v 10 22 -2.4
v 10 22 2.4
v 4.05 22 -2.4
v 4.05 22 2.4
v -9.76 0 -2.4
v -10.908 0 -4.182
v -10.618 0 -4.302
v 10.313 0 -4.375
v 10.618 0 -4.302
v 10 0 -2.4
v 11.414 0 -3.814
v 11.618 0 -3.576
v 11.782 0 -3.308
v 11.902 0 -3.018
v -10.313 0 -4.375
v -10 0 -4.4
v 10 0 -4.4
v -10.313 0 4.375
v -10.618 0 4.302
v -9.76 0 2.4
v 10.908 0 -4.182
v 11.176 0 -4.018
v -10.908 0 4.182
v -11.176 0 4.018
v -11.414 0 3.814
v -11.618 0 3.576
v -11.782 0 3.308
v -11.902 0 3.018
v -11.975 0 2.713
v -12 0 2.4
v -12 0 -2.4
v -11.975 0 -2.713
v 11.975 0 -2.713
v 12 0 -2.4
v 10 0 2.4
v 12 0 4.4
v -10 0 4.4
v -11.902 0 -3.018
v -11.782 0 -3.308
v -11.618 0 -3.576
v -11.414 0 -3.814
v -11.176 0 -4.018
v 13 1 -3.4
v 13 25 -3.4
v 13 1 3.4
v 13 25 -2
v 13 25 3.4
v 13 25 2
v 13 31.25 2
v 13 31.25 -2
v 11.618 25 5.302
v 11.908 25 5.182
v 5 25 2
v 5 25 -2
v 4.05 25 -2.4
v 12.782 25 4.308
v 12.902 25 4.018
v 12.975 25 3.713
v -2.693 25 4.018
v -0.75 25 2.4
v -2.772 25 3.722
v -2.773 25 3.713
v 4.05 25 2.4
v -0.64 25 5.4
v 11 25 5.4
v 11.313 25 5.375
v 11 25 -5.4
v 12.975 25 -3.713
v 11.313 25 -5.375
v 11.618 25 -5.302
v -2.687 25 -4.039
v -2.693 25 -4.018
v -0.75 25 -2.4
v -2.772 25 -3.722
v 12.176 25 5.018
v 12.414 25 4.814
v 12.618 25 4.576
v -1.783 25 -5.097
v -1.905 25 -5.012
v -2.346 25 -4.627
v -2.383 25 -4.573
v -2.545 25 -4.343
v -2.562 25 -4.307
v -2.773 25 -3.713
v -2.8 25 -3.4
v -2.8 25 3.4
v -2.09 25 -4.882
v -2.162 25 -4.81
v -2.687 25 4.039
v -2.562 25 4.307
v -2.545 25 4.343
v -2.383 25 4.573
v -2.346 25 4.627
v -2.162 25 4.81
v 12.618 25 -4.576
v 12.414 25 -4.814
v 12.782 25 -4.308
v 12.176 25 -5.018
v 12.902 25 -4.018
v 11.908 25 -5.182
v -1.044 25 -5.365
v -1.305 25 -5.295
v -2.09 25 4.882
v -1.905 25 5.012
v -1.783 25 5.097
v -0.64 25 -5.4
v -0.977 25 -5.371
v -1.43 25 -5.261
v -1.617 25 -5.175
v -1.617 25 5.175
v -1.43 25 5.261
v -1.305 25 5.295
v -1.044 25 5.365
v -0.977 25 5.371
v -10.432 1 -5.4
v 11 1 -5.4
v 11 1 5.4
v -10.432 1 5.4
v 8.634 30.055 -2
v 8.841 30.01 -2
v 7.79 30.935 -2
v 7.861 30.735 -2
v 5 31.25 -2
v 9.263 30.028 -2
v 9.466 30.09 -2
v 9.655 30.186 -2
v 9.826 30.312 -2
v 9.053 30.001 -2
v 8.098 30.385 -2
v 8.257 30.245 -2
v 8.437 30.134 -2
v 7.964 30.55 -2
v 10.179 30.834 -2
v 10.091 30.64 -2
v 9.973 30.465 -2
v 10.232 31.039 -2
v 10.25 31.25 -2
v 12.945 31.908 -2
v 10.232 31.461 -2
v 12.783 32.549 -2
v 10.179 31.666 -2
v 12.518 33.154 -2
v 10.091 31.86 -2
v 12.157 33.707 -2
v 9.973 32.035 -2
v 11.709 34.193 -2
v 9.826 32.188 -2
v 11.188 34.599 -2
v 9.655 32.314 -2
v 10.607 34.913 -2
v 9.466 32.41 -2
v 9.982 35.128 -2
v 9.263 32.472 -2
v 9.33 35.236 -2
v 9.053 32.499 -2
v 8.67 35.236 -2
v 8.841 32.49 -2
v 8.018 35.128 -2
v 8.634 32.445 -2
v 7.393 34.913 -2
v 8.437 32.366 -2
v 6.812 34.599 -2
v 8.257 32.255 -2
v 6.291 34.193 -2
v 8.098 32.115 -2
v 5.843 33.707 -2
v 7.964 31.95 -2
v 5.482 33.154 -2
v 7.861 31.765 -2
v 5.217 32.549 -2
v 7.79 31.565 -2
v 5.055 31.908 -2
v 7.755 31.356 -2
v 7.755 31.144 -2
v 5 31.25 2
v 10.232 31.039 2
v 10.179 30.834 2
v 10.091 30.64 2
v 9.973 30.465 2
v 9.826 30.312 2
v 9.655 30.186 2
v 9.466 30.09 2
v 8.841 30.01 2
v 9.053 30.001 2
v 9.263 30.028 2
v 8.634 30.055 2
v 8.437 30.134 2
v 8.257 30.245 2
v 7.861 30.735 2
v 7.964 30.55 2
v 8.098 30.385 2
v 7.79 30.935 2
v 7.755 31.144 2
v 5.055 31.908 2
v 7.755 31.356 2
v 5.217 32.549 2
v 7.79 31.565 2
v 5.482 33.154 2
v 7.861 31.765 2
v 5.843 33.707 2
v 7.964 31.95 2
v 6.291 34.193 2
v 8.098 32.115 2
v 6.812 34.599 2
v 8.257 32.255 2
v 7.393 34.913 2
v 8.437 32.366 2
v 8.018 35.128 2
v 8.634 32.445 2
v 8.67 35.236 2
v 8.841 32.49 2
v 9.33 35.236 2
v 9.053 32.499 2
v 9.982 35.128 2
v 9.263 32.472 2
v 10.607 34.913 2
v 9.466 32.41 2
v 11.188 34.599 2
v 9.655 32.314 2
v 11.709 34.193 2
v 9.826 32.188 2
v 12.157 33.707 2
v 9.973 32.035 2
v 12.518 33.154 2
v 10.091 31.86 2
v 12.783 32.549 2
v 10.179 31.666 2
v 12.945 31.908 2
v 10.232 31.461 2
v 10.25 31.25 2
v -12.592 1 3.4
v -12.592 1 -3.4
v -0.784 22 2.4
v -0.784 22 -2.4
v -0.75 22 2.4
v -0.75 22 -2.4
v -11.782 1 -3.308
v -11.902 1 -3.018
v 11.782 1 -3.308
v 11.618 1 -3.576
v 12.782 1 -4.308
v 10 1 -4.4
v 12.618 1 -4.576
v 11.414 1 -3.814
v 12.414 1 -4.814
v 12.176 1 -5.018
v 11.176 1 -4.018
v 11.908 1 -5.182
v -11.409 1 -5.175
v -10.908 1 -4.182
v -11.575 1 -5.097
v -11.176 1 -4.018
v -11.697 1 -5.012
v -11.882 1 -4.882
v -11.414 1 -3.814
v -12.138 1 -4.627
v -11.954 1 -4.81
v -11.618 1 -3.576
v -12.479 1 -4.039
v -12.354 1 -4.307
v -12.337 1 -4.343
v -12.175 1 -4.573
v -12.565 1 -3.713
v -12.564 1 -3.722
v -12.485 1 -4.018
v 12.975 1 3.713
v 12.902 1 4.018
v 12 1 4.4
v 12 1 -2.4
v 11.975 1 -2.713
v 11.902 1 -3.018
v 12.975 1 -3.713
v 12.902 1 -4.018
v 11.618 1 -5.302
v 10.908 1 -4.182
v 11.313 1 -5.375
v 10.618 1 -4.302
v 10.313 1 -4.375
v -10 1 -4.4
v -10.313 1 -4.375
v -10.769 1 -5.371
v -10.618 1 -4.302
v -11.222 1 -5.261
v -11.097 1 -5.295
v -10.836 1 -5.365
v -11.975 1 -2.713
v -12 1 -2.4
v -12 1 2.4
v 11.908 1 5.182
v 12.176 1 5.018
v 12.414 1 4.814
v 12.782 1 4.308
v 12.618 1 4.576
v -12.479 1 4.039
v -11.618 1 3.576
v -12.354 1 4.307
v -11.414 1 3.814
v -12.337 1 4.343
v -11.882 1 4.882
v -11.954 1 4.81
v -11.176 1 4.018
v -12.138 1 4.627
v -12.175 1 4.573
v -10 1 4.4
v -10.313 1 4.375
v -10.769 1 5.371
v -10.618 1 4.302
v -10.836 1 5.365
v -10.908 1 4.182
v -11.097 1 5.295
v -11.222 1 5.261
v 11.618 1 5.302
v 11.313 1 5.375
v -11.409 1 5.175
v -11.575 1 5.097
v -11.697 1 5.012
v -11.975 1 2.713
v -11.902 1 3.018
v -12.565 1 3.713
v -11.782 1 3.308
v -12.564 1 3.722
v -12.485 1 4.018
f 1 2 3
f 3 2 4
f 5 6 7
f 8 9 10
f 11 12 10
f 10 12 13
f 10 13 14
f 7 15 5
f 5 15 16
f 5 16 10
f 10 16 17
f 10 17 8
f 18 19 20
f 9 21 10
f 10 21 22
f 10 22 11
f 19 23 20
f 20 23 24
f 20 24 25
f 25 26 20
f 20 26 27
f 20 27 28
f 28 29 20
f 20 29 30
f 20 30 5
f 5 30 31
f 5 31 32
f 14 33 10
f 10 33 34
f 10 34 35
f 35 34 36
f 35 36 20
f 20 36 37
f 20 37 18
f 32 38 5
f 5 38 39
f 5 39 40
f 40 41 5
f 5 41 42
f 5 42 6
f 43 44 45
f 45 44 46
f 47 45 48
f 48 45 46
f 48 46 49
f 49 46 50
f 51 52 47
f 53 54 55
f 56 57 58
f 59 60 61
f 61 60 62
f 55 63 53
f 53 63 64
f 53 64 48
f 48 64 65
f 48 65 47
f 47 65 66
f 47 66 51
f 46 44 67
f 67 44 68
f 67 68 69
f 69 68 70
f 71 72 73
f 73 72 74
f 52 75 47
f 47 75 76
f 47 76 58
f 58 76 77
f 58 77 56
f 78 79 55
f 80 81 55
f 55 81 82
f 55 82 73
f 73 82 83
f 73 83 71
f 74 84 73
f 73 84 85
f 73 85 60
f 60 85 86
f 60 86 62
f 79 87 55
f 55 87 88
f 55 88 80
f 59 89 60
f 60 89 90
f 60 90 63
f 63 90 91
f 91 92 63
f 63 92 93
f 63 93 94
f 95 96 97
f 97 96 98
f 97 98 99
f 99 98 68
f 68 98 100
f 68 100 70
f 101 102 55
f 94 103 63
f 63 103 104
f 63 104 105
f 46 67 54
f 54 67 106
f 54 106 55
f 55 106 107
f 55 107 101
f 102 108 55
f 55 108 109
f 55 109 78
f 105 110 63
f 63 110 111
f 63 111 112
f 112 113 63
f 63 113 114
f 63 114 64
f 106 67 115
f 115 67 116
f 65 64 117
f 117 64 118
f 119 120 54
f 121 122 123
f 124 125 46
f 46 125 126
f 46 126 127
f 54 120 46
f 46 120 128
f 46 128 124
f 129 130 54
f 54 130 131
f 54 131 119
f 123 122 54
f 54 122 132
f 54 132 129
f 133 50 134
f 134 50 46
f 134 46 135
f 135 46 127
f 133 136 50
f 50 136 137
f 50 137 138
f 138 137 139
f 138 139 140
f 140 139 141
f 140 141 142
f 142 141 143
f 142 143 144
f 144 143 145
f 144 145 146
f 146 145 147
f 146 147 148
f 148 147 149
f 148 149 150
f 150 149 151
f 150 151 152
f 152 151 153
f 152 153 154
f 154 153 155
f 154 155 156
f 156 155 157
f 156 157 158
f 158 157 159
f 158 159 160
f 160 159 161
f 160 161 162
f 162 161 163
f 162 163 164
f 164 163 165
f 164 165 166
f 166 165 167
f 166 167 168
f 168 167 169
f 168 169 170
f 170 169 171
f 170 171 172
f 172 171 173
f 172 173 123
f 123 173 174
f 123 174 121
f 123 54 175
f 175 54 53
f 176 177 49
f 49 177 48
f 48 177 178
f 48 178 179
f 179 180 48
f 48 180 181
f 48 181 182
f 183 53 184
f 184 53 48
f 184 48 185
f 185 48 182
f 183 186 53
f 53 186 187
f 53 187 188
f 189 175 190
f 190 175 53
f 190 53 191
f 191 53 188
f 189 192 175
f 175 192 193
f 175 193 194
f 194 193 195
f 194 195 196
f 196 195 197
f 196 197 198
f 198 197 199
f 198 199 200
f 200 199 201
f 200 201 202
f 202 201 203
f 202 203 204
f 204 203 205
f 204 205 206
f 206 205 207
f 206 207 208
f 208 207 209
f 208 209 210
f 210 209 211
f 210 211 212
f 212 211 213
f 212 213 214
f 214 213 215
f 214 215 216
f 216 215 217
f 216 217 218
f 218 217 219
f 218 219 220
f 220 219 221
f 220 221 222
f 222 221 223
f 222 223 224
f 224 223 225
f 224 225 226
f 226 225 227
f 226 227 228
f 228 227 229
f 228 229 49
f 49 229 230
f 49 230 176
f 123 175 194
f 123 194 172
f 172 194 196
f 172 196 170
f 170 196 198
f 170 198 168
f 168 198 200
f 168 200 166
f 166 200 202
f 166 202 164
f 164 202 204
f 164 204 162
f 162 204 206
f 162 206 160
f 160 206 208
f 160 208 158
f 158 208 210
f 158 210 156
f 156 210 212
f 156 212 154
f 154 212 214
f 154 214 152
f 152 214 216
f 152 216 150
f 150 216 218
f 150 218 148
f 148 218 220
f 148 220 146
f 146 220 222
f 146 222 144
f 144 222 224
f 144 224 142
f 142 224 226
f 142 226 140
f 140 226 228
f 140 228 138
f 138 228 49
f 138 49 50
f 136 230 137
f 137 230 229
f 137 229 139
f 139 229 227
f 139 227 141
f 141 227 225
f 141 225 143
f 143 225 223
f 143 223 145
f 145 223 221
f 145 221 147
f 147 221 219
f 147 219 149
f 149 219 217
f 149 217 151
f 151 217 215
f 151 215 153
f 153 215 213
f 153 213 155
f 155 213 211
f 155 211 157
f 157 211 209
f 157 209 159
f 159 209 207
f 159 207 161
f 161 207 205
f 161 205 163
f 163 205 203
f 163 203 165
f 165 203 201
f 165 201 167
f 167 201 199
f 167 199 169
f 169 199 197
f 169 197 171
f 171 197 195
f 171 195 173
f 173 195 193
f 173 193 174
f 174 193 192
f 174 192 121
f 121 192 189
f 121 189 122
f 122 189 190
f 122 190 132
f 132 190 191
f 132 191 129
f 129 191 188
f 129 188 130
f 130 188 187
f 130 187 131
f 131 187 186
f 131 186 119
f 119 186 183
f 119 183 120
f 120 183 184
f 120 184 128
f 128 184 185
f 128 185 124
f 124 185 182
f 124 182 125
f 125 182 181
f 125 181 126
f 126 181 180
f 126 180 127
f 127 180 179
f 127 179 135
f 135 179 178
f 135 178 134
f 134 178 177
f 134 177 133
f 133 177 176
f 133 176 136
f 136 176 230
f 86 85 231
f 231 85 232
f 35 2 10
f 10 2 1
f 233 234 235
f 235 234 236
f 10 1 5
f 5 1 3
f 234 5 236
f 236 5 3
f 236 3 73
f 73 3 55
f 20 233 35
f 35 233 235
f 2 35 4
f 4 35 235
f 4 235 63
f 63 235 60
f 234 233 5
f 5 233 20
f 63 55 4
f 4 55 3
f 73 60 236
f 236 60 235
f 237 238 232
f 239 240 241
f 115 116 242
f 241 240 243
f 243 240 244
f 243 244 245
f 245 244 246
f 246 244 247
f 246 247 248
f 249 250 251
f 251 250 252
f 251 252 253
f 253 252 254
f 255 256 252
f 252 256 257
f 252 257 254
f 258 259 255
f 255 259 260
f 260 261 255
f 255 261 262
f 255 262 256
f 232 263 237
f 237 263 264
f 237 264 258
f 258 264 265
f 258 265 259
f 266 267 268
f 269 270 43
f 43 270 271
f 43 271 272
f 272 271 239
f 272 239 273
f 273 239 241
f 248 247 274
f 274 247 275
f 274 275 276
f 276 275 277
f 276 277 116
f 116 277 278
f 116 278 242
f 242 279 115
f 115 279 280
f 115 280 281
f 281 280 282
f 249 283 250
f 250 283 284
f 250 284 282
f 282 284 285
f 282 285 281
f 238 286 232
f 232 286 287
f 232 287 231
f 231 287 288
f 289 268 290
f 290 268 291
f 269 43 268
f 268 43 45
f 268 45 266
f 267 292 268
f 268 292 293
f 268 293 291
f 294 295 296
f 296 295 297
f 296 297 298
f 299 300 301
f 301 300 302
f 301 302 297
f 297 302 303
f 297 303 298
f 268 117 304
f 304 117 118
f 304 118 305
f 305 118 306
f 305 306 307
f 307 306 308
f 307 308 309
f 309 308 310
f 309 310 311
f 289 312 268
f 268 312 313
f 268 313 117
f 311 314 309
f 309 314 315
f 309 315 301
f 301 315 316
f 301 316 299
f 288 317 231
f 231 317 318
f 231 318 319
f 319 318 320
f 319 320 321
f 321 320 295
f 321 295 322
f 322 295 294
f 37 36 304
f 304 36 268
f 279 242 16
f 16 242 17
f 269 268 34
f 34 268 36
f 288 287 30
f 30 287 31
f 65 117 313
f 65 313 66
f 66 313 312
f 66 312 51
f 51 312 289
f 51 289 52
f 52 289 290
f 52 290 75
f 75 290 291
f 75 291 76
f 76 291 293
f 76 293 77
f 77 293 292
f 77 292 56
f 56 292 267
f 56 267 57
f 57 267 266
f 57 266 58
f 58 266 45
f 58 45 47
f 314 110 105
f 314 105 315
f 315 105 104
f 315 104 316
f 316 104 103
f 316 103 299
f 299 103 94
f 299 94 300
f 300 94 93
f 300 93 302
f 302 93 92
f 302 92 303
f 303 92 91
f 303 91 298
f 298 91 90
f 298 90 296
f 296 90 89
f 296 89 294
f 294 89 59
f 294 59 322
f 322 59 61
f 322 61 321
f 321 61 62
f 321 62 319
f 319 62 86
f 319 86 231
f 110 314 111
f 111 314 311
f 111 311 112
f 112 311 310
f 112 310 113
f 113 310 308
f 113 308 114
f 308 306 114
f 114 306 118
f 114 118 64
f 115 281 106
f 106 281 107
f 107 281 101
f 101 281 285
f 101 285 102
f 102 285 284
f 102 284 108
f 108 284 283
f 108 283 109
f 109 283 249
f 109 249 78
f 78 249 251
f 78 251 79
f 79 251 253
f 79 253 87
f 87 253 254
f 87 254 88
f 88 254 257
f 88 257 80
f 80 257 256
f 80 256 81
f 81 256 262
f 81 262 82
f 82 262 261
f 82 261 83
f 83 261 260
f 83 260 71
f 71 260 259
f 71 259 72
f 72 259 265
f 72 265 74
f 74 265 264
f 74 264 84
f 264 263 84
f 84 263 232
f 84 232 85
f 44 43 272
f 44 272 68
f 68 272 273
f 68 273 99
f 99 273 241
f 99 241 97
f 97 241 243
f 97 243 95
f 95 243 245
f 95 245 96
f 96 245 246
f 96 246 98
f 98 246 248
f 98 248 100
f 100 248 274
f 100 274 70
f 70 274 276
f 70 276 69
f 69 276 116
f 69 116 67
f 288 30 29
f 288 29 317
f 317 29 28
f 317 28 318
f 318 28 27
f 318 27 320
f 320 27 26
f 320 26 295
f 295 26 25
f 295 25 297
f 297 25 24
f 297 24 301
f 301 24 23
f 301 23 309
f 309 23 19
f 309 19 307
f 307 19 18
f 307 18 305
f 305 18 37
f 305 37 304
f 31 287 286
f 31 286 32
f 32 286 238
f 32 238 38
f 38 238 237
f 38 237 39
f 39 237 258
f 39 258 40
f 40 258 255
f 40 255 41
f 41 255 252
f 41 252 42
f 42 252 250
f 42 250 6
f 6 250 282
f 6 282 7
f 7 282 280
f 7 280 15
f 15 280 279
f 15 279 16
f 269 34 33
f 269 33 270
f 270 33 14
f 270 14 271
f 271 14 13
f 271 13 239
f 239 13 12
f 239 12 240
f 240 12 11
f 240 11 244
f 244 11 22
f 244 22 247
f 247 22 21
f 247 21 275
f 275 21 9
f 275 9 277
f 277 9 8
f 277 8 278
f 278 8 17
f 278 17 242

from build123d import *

# Parameters (mm, degrees)
SKETCH1_W           = 26
SKETCH1_H           = 10.8
BOSS_EXTRUDE1_DEPTH = 25
SKETCH2_W           = 8
SKETCH2_H           = 4
BOSS_EXTRUDE2_DEPTH = 10.25
SKETCH3_R           = 1.25
CUT_EXTRUDE1_DEPTH  = 10.25
CUT_EXTRUDE2_DEPTH  = 40.092230686
SHELL1_START        = -2.4
SHELL1_DEPTH        = 4.8
SKETCH5_W           = 4.8
SKETCH5_H           = 4.8
CUT_EXTRUDE3_DEPTH  = 10.25
SKETCH6_W           = 1
SKETCH6_H           = 1
CUT_EXTRUDE4_DEPTH  = 45.133009188
SKETCH7_W           = 1
SKETCH7_H           = 1
CUT_EXTRUDE5_DEPTH  = 10.25
FILLET1_R           = 2
FILLET2_R           = 2


# Read off the part's stored shape, not the designer's step: Shell1
with BuildPart() as part:
    # Sketch1 → Boss-Extrude1 (new body)
    with BuildSketch(Plane(origin=(0, 0, 0), x_dir=(1, 0, 0), z_dir=(0, 1, 0))):
        Rectangle(SKETCH1_W, SKETCH1_H)
    extrude(amount=BOSS_EXTRUDE1_DEPTH)

    # Sketch2 → Boss-Extrude2 (add)
    with BuildSketch(Plane(origin=(0, 25, 0), x_dir=(1, 0, 0), z_dir=(0, 1, 0))):
        with Locations((9, 0)):
            Rectangle(SKETCH2_W, SKETCH2_H)
    extrude(amount=BOSS_EXTRUDE2_DEPTH)

    # Sketch3 → Cut-Extrude1 (cut)
    with BuildSketch(Plane.XY.offset(2)):
        with Locations((9, 31.25)):
            Circle(SKETCH3_R)
        with BuildLine():
            Line((5, 31.25), (5, 37.25))
            Line((5, 37.25), (13, 37.25))
            Line((13, 37.25), (13, 31.25))
            ThreePointArc((13, 31.25), (9, 35.25), (5, 31.25))
        make_face()
    extrude(amount=-CUT_EXTRUDE1_DEPTH, mode=Mode.SUBTRACT)

    # Sketch4 → Cut-Extrude2 (cut, through all)
    with BuildSketch(Plane.XY.offset(5.4)):
        Polygon((-13, 0), (-2.8, 25), (-13, 25), align=None)
    extrude(amount=-CUT_EXTRUDE2_DEPTH, mode=Mode.SUBTRACT)

    # Shell1 outline → Shell1 (cut)
    with BuildSketch(Plane.XY.offset(SHELL1_START)):
        Polygon((10, 0), (10, 22), (-0.783911112, 22), (-9.759911112, 0), align=None)
    extrude(amount=SHELL1_DEPTH, mode=Mode.SUBTRACT)

    # Sketch5 → Cut-Extrude3 (cut)
    with BuildSketch(Plane(origin=(0, 25, 0), x_dir=(1, 0, 0), z_dir=(0, 1, 0))):
        with Locations((1.65, 0)):
            Rectangle(SKETCH5_W, SKETCH5_H)
    extrude(amount=-CUT_EXTRUDE3_DEPTH, mode=Mode.SUBTRACT)

    # Sketch6 → Cut-Extrude4 (cut, through all)
    with BuildSketch(Plane(origin=(13, 0, 0), x_dir=(0, 0, -1), z_dir=(1, 0, 0))):
        with Locations((-4.9, 0.5)):
            Rectangle(SKETCH6_W, SKETCH6_H)
        with Locations((4.9, 0.5)):
            Rectangle(SKETCH6_W, SKETCH6_H)
    extrude(amount=-CUT_EXTRUDE4_DEPTH, mode=Mode.SUBTRACT)

    # Sketch7 → Cut-Extrude5 (cut)
    with BuildSketch(Plane(origin=(0, 0, -5.4), x_dir=(-1, 0, 0), z_dir=(0, 0, -1))):
        with Locations((-12.5, 0.5)):
            Rectangle(SKETCH7_W, SKETCH7_H)
        with Locations((12.5, 0.5)):
            Rectangle(SKETCH7_W, SKETCH7_H)
    extrude(amount=-CUT_EXTRUDE5_DEPTH, mode=Mode.SUBTRACT)

    # Fillet1
    fillet1_edges = [part.edges().sort_by_distance(p)[0] for p in [
        (13, 13, 5.4),
        (-7.696, 13, 5.4),
        (-7.696, 13, -5.4),
        (13, 13, -5.4),
    ]]
    fillet(fillet1_edges, radius=FILLET1_R)

    # Fillet2
    fillet2_edges = [part.edges().sort_by_distance(p)[0] for p in [
        (12, 0.5, -4.4),
        (-12, 0.5, -4.4),
        (-12, 0.5, 4.4),
    ]]
    fillet(fillet2_edges, radius=FILLET2_R)


solid = part.part
